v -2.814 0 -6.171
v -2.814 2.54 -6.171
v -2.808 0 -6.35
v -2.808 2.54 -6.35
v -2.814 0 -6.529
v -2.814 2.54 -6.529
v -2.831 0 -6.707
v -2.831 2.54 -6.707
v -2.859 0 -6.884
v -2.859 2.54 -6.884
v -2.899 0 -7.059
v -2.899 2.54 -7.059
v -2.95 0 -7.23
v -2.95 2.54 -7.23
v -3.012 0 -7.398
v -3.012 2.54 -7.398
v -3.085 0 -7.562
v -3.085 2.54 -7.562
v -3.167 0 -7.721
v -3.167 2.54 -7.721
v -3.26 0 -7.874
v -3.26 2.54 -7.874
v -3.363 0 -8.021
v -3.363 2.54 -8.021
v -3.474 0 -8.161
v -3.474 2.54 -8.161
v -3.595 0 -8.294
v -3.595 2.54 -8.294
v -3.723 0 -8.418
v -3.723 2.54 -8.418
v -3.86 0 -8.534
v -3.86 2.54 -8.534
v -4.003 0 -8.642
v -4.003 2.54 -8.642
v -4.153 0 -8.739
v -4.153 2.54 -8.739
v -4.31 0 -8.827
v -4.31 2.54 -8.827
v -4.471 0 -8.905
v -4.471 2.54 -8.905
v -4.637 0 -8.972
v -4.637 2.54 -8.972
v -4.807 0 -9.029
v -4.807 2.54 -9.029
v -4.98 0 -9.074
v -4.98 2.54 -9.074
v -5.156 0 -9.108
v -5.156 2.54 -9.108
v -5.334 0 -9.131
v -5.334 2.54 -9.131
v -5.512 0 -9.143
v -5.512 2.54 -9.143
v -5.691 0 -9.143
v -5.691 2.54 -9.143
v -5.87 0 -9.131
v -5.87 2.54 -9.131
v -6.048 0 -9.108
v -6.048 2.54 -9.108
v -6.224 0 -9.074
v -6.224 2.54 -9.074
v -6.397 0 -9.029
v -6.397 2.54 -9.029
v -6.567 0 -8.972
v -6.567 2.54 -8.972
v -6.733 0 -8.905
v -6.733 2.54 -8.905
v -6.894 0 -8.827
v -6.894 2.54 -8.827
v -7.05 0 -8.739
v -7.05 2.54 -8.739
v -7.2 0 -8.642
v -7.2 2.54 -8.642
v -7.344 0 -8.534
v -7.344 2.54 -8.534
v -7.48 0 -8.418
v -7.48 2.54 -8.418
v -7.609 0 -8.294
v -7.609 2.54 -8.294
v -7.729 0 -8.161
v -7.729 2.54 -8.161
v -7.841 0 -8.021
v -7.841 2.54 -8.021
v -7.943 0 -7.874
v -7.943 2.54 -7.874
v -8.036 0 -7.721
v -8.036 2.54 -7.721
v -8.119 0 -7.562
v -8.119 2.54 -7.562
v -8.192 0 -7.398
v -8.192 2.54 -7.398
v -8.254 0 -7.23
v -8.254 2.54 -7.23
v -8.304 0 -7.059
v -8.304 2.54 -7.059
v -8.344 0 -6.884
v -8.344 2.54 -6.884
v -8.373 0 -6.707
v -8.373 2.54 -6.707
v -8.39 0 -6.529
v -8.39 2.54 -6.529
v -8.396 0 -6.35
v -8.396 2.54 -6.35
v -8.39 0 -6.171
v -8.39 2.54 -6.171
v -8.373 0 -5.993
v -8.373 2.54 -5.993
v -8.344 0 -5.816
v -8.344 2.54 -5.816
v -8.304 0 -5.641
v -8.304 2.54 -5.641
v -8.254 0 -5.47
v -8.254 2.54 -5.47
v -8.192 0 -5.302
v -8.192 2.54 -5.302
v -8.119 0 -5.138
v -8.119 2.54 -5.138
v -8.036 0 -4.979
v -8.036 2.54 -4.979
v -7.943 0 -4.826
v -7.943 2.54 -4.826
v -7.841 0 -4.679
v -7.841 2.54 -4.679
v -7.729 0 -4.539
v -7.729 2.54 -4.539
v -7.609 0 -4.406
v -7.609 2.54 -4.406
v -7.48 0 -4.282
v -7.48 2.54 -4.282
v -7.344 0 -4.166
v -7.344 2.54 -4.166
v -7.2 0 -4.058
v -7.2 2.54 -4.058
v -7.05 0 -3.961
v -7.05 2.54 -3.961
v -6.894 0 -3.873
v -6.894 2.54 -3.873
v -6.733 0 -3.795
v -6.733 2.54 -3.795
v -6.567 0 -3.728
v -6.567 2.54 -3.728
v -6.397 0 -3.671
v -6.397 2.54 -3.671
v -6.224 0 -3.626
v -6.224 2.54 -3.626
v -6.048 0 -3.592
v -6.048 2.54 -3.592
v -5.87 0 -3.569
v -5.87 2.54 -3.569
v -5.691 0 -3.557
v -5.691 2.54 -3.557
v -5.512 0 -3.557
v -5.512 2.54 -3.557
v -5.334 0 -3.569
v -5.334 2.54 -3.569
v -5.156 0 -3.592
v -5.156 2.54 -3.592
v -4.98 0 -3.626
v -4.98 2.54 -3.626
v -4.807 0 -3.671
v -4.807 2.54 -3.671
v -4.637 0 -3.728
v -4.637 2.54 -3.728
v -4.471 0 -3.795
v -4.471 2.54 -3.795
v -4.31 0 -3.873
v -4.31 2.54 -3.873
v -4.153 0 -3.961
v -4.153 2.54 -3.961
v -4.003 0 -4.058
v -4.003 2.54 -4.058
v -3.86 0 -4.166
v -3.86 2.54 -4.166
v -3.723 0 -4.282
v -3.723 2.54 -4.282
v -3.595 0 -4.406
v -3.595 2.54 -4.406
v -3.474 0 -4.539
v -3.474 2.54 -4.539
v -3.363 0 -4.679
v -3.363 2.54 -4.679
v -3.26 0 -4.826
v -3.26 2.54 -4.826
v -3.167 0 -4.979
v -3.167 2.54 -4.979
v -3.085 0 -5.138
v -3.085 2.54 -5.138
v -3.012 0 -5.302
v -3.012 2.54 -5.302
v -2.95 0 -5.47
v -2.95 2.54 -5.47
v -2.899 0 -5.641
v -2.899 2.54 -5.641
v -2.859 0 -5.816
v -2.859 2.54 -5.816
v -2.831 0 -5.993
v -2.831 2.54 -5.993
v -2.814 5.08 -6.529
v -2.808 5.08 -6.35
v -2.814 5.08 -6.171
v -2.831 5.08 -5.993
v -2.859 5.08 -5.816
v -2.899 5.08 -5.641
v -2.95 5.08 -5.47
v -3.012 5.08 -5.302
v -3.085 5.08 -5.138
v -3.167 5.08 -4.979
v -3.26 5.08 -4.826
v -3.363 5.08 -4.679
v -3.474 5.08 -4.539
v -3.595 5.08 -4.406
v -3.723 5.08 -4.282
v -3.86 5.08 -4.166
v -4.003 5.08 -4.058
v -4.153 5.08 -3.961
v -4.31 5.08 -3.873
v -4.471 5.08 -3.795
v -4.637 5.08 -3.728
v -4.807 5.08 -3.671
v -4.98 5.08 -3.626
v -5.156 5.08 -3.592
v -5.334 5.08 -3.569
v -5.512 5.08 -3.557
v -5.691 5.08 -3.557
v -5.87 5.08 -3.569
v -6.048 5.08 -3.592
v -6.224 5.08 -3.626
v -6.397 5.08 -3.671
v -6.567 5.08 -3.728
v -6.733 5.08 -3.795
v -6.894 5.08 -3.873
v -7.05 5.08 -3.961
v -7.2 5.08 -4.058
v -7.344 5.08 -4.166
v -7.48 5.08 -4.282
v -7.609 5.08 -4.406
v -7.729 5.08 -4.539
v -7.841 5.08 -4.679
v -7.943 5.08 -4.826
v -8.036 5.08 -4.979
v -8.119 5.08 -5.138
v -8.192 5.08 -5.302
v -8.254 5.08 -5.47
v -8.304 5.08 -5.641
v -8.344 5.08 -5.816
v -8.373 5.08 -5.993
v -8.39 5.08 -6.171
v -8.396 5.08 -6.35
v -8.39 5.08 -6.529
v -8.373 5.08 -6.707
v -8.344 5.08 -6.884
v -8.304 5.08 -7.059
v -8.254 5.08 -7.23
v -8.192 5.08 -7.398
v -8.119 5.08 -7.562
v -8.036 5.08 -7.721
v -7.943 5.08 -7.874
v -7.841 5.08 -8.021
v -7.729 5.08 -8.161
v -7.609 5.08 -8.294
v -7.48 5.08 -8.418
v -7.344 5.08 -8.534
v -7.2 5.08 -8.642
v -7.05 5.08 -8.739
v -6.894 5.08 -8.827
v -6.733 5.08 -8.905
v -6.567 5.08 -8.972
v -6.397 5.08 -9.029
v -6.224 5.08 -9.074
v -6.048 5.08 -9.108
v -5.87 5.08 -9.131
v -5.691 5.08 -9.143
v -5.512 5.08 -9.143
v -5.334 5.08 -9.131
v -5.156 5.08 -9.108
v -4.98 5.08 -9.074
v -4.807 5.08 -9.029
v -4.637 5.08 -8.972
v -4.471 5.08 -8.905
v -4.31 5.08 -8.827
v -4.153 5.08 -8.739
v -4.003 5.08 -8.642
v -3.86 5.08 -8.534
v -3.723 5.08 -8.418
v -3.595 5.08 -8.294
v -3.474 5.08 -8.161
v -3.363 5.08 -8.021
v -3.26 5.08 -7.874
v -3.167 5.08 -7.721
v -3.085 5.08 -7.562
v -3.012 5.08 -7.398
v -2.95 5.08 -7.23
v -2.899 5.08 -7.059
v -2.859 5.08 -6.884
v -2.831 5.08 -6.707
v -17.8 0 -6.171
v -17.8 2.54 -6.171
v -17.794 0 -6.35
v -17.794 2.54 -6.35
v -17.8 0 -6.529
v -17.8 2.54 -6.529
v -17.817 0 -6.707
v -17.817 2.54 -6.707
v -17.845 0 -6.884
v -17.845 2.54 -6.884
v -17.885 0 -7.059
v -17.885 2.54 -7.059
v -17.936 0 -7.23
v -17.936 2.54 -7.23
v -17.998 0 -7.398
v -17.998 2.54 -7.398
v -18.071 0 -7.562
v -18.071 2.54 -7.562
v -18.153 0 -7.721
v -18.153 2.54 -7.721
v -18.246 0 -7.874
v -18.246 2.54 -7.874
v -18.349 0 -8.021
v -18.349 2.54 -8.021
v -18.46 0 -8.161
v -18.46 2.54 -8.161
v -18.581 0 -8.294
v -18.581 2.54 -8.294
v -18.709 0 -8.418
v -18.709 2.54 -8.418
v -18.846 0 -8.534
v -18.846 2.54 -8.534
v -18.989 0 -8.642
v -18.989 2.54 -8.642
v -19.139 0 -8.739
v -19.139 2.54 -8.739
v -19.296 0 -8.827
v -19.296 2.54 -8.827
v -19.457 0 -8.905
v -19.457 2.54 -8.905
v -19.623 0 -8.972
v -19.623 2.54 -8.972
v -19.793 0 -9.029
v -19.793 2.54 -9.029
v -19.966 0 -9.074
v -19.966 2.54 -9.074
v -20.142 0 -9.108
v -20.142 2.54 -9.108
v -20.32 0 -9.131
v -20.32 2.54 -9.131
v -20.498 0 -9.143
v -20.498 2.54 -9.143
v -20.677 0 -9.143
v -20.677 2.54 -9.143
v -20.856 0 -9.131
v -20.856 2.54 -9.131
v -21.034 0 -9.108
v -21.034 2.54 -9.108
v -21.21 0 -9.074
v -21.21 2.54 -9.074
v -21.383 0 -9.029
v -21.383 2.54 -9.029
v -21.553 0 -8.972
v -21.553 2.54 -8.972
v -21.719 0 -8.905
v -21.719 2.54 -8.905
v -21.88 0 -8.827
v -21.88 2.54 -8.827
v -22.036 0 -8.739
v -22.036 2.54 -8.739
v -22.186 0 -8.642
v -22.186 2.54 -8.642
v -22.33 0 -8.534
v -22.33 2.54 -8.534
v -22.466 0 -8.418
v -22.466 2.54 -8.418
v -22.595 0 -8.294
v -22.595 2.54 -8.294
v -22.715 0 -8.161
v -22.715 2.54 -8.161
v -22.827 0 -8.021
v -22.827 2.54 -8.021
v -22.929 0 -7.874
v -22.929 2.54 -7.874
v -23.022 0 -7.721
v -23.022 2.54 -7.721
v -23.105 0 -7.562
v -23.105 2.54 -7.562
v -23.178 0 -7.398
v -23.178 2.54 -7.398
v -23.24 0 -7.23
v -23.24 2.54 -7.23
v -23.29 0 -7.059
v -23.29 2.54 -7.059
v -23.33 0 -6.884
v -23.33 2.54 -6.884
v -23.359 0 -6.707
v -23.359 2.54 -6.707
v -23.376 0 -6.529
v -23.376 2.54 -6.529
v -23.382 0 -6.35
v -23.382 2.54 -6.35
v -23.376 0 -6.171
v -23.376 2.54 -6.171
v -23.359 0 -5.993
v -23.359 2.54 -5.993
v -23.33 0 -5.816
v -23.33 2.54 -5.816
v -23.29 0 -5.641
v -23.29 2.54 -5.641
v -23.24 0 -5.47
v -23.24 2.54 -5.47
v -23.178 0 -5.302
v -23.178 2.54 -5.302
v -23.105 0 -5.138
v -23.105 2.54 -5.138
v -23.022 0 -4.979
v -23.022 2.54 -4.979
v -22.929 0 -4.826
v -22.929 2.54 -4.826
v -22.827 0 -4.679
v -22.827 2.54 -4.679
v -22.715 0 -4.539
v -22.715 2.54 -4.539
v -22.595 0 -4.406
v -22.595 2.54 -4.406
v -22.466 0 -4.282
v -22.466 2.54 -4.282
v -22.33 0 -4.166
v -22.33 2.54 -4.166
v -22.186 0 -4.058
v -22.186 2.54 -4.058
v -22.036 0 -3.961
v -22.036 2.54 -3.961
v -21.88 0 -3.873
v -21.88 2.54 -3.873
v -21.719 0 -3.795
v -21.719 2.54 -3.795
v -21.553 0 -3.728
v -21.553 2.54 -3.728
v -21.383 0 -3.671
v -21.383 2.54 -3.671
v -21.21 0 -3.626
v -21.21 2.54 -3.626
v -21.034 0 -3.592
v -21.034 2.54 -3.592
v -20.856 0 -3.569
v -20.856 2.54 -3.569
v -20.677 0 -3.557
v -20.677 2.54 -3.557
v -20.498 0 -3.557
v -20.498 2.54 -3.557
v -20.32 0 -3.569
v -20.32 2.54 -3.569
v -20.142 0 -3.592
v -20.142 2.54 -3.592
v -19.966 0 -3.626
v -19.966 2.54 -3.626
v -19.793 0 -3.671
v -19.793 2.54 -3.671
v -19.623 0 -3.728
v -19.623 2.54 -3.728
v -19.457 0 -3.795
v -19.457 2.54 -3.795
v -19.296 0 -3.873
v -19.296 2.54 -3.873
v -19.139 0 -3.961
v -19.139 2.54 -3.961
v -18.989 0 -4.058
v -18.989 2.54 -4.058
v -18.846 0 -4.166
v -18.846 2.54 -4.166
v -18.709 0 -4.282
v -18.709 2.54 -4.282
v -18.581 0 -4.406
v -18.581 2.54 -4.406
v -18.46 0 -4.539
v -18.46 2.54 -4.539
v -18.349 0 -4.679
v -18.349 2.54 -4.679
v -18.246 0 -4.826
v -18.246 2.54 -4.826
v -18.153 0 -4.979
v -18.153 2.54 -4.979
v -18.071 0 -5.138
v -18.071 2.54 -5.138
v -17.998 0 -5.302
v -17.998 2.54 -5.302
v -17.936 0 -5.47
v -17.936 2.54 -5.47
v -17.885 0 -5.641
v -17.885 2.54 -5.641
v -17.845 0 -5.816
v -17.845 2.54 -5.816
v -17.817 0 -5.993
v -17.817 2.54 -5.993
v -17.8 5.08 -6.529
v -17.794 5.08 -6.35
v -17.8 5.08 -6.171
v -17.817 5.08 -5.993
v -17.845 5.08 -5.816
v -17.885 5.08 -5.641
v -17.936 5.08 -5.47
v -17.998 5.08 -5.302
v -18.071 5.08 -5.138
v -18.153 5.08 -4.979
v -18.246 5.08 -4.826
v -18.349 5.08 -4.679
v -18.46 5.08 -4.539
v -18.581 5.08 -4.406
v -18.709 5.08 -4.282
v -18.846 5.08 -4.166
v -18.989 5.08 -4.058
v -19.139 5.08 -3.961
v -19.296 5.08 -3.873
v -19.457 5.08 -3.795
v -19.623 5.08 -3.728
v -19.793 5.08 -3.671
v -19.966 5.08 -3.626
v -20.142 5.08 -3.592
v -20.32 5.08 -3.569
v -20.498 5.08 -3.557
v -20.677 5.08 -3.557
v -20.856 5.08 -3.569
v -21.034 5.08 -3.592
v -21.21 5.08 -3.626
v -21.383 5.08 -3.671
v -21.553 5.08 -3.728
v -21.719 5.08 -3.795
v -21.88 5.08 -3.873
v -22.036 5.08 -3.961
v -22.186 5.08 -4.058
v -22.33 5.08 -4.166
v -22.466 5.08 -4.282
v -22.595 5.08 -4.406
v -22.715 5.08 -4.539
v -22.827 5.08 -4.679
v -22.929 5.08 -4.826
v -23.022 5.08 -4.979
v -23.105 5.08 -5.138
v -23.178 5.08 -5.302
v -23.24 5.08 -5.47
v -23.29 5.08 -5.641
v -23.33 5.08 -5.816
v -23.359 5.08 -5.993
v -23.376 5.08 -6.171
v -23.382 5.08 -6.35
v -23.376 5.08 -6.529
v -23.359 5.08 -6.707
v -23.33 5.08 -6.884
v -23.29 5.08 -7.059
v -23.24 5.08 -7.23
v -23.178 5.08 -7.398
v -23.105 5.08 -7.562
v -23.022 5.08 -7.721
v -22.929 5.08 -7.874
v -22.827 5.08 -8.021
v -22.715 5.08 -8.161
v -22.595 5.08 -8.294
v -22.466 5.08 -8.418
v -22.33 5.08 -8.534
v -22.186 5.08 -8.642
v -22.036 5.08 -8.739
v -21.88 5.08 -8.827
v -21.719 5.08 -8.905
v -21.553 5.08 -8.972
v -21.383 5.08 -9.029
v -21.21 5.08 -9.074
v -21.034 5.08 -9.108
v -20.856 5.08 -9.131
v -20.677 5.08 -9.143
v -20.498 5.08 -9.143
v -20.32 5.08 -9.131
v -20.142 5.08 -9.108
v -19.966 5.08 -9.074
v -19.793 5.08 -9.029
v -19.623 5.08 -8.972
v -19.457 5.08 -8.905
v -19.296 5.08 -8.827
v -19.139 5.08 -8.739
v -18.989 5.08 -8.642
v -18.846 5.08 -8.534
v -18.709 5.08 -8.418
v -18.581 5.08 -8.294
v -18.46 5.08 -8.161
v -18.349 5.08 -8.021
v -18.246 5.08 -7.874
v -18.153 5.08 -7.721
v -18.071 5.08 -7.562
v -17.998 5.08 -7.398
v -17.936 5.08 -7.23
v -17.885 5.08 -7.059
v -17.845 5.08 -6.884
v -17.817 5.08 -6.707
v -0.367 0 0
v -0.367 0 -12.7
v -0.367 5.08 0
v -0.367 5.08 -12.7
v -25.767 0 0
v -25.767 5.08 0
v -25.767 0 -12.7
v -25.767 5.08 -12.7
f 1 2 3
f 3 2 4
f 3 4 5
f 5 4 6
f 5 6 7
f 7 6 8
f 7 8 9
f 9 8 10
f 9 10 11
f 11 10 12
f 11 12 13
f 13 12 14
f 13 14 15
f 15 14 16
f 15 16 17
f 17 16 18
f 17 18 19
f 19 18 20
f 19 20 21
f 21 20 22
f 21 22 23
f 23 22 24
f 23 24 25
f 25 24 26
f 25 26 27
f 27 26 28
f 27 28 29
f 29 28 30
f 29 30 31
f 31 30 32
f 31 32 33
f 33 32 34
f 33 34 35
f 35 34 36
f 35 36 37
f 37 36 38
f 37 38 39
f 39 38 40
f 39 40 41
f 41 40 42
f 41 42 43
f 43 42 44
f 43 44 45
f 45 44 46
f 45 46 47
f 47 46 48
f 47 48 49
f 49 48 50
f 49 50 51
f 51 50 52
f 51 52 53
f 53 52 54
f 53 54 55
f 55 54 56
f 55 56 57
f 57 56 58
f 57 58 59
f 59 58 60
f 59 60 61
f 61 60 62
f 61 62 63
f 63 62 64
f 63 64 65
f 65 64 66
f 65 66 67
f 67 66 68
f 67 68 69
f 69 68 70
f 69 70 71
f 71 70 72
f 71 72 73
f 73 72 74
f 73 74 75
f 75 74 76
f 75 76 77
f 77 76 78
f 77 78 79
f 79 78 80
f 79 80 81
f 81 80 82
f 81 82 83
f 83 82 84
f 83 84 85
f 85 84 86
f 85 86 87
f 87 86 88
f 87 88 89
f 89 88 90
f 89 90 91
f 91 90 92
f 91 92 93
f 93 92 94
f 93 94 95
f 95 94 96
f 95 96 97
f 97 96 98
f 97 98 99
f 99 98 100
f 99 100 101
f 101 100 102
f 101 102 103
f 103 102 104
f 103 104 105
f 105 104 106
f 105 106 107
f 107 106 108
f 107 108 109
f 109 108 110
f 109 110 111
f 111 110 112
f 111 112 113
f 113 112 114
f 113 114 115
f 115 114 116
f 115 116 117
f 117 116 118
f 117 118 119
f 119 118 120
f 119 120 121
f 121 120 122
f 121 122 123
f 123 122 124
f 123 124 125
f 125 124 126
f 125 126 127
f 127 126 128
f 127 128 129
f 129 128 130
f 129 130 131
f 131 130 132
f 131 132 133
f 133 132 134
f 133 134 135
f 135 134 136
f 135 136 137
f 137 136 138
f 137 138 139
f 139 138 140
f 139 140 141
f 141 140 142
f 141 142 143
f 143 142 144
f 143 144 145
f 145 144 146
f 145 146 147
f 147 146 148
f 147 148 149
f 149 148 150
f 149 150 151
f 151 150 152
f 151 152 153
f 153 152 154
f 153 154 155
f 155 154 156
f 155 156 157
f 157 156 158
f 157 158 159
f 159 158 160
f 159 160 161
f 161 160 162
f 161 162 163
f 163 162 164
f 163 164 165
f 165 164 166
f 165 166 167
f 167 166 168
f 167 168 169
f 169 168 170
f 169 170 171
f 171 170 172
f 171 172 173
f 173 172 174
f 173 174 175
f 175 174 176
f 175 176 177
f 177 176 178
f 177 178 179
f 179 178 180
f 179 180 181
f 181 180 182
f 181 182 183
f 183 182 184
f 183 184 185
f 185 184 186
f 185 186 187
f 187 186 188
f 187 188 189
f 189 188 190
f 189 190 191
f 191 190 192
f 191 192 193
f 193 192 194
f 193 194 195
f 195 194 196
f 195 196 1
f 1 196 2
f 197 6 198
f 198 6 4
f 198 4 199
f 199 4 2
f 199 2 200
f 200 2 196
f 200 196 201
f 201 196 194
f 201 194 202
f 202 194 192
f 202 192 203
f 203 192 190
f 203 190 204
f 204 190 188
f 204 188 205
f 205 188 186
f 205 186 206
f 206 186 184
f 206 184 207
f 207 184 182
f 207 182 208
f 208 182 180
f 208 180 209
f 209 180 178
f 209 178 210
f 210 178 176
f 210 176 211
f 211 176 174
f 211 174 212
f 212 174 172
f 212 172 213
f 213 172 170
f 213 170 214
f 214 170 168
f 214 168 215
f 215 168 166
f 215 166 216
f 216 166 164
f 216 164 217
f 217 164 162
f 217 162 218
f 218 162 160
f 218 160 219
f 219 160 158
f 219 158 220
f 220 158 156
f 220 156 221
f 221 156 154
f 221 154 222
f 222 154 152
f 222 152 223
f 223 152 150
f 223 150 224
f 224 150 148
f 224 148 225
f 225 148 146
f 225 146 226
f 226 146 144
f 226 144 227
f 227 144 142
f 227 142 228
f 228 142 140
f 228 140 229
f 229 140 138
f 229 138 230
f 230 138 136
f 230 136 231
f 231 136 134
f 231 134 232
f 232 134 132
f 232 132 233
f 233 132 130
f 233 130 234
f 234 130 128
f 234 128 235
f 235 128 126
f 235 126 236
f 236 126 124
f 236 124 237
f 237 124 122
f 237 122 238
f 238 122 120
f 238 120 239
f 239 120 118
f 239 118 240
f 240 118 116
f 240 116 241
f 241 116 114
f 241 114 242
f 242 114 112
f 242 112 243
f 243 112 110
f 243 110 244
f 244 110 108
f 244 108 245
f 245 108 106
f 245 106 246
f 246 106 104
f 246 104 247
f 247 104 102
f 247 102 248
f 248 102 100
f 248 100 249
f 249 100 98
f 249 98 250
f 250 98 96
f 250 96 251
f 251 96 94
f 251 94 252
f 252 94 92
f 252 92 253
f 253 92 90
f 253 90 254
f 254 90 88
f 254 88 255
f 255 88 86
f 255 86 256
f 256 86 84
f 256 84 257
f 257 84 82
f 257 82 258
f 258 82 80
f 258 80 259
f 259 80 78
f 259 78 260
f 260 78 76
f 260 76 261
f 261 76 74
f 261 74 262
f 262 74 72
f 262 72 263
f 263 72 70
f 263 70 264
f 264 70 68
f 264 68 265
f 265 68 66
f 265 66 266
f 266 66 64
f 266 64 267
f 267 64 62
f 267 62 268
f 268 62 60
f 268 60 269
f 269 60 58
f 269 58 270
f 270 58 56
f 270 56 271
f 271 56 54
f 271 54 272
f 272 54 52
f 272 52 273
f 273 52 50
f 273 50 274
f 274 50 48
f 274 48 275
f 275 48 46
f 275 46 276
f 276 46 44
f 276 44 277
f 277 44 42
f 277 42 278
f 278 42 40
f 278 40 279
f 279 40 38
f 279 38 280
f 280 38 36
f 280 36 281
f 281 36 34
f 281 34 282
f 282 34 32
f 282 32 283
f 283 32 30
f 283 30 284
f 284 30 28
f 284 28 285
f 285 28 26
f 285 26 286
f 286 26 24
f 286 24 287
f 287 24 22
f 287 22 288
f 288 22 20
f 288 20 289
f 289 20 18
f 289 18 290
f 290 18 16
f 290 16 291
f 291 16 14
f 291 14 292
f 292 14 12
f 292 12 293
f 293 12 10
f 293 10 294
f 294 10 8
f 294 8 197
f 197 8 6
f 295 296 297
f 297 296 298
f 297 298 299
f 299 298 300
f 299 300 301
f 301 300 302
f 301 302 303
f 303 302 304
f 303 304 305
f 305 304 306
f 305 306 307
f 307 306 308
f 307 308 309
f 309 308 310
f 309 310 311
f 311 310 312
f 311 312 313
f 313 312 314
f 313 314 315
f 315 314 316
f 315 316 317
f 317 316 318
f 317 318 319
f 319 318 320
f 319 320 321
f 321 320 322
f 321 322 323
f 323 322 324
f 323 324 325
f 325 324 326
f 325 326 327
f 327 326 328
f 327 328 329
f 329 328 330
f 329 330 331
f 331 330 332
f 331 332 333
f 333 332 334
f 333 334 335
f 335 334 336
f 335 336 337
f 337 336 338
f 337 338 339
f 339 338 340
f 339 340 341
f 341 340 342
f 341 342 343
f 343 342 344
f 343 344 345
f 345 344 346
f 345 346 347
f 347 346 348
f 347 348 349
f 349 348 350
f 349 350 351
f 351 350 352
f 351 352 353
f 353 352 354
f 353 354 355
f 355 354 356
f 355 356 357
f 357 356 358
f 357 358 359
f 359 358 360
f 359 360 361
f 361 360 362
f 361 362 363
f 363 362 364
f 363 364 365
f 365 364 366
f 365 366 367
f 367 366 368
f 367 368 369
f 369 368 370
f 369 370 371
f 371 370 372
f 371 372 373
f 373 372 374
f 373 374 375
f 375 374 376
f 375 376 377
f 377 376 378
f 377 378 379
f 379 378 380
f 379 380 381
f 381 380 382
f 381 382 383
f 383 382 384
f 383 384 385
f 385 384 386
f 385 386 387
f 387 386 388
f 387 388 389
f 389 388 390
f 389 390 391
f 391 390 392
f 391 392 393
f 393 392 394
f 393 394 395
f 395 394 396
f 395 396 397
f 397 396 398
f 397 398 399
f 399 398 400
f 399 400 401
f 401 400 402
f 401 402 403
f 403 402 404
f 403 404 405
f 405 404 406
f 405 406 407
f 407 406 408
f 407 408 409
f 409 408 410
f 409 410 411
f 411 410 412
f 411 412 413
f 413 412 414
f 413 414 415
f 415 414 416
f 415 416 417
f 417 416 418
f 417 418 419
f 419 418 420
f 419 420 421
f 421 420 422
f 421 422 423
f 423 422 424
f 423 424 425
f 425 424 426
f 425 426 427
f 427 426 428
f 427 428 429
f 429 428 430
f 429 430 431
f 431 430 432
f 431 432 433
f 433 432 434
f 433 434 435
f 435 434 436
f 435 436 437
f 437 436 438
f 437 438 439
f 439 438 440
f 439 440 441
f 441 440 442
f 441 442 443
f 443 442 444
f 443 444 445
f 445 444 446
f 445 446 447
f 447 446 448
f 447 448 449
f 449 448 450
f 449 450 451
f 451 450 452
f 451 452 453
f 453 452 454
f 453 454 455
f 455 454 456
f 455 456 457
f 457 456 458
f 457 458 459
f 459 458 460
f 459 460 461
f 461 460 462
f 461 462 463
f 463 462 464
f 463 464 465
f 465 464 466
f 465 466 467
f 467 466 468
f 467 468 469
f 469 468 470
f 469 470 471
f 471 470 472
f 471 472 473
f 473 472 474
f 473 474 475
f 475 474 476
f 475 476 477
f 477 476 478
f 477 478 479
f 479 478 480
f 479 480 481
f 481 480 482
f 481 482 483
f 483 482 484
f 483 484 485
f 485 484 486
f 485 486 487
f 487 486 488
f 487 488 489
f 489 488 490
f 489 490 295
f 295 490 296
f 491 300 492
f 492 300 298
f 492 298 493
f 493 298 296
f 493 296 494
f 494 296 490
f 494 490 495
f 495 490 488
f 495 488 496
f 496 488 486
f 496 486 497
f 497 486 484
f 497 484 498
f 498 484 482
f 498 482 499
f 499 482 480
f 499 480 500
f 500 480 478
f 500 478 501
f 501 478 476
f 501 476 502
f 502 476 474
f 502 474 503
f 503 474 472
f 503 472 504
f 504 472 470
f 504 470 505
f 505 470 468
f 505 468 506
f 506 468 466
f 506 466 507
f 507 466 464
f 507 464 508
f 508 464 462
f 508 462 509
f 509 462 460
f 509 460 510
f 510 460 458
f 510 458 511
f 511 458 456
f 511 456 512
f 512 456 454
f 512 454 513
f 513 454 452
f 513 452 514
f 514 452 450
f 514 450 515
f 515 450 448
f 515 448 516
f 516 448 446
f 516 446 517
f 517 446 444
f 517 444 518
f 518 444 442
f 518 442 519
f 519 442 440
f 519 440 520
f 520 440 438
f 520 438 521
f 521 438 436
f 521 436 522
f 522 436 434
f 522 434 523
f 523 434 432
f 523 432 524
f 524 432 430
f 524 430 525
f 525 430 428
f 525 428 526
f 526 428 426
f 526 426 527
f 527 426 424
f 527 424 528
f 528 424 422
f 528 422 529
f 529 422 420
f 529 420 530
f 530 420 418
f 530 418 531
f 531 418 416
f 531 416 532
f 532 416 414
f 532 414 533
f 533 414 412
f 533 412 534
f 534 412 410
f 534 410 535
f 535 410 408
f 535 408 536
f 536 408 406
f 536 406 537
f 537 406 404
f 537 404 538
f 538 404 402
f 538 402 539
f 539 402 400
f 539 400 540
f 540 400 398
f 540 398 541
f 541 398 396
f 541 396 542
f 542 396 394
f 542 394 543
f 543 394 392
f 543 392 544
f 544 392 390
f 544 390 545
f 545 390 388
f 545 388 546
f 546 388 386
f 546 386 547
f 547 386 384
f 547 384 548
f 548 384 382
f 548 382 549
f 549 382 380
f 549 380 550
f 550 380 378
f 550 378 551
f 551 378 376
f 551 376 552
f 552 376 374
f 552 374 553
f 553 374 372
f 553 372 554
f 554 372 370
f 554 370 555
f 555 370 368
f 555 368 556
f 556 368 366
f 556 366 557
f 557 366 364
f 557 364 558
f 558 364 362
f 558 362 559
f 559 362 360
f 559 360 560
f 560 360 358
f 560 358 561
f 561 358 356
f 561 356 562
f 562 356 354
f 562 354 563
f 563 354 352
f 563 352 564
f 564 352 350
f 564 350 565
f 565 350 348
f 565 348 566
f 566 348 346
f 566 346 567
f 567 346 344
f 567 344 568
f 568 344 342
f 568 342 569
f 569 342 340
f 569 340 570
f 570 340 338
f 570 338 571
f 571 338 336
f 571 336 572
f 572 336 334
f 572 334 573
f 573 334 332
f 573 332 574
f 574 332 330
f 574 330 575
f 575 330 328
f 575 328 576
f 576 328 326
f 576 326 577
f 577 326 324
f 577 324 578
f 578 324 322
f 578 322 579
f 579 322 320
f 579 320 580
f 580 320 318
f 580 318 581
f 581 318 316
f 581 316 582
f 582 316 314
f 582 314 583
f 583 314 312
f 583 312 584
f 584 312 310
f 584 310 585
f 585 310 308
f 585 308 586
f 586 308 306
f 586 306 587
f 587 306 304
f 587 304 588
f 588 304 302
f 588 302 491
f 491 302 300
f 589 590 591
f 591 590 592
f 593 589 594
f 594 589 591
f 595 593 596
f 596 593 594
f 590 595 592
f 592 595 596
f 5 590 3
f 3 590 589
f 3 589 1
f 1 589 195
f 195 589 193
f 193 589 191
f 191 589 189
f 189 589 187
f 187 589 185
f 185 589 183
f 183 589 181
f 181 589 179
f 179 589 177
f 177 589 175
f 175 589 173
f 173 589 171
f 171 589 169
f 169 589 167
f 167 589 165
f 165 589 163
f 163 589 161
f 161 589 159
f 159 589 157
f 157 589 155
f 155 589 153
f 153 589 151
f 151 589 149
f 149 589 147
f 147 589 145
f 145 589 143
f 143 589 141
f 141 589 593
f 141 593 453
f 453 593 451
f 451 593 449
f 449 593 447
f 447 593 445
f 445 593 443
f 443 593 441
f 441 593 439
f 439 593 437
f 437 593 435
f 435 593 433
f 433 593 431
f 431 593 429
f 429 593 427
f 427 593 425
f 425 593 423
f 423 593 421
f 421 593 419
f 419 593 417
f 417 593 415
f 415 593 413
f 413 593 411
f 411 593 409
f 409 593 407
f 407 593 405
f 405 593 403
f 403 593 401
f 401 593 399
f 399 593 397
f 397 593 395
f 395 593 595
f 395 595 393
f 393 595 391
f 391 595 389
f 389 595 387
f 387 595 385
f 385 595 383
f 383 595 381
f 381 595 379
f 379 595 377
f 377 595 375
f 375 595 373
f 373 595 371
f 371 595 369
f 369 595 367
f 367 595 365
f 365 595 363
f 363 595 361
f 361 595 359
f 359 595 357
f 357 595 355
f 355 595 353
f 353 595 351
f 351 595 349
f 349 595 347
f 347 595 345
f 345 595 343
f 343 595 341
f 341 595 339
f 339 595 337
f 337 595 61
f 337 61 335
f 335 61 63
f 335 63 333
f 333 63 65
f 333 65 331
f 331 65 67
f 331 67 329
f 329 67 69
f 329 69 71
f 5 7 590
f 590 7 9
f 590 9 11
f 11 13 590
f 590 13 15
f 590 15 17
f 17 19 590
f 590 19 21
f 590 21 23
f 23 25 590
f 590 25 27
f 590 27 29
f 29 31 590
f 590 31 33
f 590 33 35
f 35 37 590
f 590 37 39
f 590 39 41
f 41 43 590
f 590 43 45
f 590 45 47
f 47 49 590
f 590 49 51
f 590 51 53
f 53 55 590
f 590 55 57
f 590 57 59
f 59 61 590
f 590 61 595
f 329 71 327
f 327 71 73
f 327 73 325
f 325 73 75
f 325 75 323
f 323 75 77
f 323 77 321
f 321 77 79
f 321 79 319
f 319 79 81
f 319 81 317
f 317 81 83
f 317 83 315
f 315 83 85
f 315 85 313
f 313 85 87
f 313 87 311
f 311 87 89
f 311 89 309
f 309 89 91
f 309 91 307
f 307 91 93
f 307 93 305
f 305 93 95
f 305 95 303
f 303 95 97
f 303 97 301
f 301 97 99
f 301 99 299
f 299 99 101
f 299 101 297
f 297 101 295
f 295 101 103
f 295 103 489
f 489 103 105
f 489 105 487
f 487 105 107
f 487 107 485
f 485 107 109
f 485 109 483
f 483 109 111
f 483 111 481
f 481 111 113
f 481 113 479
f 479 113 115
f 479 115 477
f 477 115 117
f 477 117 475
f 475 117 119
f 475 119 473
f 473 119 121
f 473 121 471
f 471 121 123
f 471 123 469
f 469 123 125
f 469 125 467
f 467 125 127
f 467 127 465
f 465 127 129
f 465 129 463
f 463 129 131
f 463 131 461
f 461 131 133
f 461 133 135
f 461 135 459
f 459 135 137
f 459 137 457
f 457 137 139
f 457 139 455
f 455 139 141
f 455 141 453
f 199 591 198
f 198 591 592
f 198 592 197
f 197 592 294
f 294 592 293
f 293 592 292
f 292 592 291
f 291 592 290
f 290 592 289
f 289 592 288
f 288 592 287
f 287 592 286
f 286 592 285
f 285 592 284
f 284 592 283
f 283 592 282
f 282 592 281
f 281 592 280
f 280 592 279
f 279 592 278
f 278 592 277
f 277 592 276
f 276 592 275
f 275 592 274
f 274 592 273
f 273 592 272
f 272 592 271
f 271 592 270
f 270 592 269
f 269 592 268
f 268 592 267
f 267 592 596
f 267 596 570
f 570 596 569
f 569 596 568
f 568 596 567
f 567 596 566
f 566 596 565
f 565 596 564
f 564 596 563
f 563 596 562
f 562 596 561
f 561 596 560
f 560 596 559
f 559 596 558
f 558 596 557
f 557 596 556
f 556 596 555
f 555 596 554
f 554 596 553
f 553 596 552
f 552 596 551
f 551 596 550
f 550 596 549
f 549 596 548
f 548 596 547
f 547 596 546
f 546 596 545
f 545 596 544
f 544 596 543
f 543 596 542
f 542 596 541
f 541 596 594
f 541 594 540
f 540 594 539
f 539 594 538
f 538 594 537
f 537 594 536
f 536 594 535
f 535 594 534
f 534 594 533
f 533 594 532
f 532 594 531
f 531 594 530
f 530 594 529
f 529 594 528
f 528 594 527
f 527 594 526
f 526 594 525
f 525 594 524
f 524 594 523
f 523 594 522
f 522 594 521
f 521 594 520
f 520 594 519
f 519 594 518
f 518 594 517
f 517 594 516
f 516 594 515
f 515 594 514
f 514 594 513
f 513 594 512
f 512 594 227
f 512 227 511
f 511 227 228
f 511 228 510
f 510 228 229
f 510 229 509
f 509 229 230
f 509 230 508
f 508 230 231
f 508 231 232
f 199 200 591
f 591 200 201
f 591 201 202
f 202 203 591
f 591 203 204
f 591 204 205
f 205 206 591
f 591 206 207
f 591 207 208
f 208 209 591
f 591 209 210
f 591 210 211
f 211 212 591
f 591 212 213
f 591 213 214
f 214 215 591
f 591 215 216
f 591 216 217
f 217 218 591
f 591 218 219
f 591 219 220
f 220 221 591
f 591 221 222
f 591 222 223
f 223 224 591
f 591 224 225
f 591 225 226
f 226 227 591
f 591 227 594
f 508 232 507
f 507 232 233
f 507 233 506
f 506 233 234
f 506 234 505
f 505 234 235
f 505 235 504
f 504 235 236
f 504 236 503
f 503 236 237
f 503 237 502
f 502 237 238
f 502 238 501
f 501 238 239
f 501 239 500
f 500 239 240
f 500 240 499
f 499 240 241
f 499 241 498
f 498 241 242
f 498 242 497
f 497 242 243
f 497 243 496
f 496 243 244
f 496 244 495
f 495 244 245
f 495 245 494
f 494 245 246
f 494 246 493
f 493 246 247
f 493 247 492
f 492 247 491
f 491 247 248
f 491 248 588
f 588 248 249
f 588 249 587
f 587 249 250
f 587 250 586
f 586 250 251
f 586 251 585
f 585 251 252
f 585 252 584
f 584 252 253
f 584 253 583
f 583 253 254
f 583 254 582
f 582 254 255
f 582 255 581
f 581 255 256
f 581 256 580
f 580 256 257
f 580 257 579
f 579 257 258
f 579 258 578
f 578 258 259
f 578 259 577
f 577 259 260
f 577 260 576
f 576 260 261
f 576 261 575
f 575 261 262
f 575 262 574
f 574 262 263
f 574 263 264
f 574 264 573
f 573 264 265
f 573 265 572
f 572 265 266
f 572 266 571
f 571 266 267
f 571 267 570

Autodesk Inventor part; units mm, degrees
ref_plane "YZ Plane" through (0, 0, 0) normal (1, 0, 0) x (0, 1, 0)
ref_plane "XZ Plane" through (0, 0, 0) normal (0, 1, 0) x (-1, 0, 0)
ref_plane "XY Plane" through (0, 0, 0) normal (0, 0, 1) x (1, 0, 0)
sketch "Spacer 2D" plane through (0, 0, 0) normal (0, 1, 0) x (-1, 0, 0)
  line L0 (0, -6.35) -> (26.162, -6.35) construction
  line L1 (13.0671, 0) -> (13.0671, -12.7) construction
  line L2 (25.7671, -12.7) -> (0.3671, -12.7)
  line L3 (0.3671, -12.7) -> (0.3671, 0)
  line L4 (0.3671, 0) -> (25.7671, 0)
  line L5 (25.7671, 0) -> (25.7671, -12.7)
  line L6 (25.7671, -12.7) -> (0.3671, 0) construction
  line L7 (0.3671, -12.7) -> (25.7671, 0) construction
  line L8 (13.081, -12.7) -> (13.081, 0) construction
  line L9 (25.7949, -12.7) -> (25.7949, 0) construction
  line L10 (17.78, -6.35) -> (24.8285, -6.35) construction
  line L11 (17.78, -6.35) -> (23.368, -6.35) construction
  circle A0 centre (20.574, -6.35) radius 2.794
  circle A1 centre (5.588, -6.35) radius 2.794
  line L12 (8.382, -6.35) -> (17.78, -6.35) construction
  line L13 (0.3949, 0) -> (0.3949, -12.7) construction
  line L14 (0.381, -12.7) -> (25.781, -12.7) construction
  line L15 (25.781, -12.7) -> (25.781, 0) construction
  line L16 (25.781, 0) -> (0.381, 0) construction
  line L17 (0.381, 0) -> (0.381, -12.7) construction
  line L18 (0.381, -12.7) -> (25.781, 0) construction
  line L19 (25.781, -12.7) -> (0.381, 0) construction
  point P0 (0, 0)
  point P1 (13.0671, -6.35)
  point P2 (13.081, -6.35)
  dimension "d17" = 25.4
  dimension "d18" = 12.7
  dimension "d31" = 5.588
  dimension "d32" = 9.398
  dimension "d33" = 8.001
  dimension "d34" = 8.001
  dimension "d35" = 2.4269
  dimension "d36" = 2.4269
extrude "Spacer Body" add sketch "Spacer 2D" along normal blind 5.08 contours L2 L3 L4 L5 | A0 | A1
sketch "Spacer Circles" plane through (0, 5.08, 0) normal (0, 1, 0) x (1, 0, 0)
  line L0 (-13.0949, 0) -> (-13.0949, 12.7) construction
  line L1 (-0.3671, 0) -> (-0.3671, 12.7) construction
  circle A0 centre (-5.6019, 6.35) radius 2.794
  circle A1 centre (-20.5879, 6.35) radius 2.794
  line L2 (-17.7939, 6.35) -> (-8.3959, 6.35) construction
  line L3 (-25.7671, 12.7) -> (-25.7671, 0) construction
  line L4 (-25.7949, 0) -> (-0.3949, 0) construction
  line L5 (-0.3949, 0) -> (-0.3949, 12.7) construction
  line L6 (-0.3949, 12.7) -> (-25.7949, 12.7) construction
  line L7 (-25.7949, 12.7) -> (-25.7949, 0) construction
  line L8 (-25.7949, 0) -> (-0.3949, 12.7) construction
  line L9 (-0.3949, 0) -> (-25.7949, 12.7) construction
  point P0 (-13.0949, 6.35)
  dimension "d26" = 9.398
  dimension "d29" = 8.001
  dimension "d30" = 8.001
extrude "Spacer Holes" cut sketch "Spacer Circles" against normal blind 10.16
equation "\"d36\" = d35"
properties part number "Rectangular Top Washer v1.2"
